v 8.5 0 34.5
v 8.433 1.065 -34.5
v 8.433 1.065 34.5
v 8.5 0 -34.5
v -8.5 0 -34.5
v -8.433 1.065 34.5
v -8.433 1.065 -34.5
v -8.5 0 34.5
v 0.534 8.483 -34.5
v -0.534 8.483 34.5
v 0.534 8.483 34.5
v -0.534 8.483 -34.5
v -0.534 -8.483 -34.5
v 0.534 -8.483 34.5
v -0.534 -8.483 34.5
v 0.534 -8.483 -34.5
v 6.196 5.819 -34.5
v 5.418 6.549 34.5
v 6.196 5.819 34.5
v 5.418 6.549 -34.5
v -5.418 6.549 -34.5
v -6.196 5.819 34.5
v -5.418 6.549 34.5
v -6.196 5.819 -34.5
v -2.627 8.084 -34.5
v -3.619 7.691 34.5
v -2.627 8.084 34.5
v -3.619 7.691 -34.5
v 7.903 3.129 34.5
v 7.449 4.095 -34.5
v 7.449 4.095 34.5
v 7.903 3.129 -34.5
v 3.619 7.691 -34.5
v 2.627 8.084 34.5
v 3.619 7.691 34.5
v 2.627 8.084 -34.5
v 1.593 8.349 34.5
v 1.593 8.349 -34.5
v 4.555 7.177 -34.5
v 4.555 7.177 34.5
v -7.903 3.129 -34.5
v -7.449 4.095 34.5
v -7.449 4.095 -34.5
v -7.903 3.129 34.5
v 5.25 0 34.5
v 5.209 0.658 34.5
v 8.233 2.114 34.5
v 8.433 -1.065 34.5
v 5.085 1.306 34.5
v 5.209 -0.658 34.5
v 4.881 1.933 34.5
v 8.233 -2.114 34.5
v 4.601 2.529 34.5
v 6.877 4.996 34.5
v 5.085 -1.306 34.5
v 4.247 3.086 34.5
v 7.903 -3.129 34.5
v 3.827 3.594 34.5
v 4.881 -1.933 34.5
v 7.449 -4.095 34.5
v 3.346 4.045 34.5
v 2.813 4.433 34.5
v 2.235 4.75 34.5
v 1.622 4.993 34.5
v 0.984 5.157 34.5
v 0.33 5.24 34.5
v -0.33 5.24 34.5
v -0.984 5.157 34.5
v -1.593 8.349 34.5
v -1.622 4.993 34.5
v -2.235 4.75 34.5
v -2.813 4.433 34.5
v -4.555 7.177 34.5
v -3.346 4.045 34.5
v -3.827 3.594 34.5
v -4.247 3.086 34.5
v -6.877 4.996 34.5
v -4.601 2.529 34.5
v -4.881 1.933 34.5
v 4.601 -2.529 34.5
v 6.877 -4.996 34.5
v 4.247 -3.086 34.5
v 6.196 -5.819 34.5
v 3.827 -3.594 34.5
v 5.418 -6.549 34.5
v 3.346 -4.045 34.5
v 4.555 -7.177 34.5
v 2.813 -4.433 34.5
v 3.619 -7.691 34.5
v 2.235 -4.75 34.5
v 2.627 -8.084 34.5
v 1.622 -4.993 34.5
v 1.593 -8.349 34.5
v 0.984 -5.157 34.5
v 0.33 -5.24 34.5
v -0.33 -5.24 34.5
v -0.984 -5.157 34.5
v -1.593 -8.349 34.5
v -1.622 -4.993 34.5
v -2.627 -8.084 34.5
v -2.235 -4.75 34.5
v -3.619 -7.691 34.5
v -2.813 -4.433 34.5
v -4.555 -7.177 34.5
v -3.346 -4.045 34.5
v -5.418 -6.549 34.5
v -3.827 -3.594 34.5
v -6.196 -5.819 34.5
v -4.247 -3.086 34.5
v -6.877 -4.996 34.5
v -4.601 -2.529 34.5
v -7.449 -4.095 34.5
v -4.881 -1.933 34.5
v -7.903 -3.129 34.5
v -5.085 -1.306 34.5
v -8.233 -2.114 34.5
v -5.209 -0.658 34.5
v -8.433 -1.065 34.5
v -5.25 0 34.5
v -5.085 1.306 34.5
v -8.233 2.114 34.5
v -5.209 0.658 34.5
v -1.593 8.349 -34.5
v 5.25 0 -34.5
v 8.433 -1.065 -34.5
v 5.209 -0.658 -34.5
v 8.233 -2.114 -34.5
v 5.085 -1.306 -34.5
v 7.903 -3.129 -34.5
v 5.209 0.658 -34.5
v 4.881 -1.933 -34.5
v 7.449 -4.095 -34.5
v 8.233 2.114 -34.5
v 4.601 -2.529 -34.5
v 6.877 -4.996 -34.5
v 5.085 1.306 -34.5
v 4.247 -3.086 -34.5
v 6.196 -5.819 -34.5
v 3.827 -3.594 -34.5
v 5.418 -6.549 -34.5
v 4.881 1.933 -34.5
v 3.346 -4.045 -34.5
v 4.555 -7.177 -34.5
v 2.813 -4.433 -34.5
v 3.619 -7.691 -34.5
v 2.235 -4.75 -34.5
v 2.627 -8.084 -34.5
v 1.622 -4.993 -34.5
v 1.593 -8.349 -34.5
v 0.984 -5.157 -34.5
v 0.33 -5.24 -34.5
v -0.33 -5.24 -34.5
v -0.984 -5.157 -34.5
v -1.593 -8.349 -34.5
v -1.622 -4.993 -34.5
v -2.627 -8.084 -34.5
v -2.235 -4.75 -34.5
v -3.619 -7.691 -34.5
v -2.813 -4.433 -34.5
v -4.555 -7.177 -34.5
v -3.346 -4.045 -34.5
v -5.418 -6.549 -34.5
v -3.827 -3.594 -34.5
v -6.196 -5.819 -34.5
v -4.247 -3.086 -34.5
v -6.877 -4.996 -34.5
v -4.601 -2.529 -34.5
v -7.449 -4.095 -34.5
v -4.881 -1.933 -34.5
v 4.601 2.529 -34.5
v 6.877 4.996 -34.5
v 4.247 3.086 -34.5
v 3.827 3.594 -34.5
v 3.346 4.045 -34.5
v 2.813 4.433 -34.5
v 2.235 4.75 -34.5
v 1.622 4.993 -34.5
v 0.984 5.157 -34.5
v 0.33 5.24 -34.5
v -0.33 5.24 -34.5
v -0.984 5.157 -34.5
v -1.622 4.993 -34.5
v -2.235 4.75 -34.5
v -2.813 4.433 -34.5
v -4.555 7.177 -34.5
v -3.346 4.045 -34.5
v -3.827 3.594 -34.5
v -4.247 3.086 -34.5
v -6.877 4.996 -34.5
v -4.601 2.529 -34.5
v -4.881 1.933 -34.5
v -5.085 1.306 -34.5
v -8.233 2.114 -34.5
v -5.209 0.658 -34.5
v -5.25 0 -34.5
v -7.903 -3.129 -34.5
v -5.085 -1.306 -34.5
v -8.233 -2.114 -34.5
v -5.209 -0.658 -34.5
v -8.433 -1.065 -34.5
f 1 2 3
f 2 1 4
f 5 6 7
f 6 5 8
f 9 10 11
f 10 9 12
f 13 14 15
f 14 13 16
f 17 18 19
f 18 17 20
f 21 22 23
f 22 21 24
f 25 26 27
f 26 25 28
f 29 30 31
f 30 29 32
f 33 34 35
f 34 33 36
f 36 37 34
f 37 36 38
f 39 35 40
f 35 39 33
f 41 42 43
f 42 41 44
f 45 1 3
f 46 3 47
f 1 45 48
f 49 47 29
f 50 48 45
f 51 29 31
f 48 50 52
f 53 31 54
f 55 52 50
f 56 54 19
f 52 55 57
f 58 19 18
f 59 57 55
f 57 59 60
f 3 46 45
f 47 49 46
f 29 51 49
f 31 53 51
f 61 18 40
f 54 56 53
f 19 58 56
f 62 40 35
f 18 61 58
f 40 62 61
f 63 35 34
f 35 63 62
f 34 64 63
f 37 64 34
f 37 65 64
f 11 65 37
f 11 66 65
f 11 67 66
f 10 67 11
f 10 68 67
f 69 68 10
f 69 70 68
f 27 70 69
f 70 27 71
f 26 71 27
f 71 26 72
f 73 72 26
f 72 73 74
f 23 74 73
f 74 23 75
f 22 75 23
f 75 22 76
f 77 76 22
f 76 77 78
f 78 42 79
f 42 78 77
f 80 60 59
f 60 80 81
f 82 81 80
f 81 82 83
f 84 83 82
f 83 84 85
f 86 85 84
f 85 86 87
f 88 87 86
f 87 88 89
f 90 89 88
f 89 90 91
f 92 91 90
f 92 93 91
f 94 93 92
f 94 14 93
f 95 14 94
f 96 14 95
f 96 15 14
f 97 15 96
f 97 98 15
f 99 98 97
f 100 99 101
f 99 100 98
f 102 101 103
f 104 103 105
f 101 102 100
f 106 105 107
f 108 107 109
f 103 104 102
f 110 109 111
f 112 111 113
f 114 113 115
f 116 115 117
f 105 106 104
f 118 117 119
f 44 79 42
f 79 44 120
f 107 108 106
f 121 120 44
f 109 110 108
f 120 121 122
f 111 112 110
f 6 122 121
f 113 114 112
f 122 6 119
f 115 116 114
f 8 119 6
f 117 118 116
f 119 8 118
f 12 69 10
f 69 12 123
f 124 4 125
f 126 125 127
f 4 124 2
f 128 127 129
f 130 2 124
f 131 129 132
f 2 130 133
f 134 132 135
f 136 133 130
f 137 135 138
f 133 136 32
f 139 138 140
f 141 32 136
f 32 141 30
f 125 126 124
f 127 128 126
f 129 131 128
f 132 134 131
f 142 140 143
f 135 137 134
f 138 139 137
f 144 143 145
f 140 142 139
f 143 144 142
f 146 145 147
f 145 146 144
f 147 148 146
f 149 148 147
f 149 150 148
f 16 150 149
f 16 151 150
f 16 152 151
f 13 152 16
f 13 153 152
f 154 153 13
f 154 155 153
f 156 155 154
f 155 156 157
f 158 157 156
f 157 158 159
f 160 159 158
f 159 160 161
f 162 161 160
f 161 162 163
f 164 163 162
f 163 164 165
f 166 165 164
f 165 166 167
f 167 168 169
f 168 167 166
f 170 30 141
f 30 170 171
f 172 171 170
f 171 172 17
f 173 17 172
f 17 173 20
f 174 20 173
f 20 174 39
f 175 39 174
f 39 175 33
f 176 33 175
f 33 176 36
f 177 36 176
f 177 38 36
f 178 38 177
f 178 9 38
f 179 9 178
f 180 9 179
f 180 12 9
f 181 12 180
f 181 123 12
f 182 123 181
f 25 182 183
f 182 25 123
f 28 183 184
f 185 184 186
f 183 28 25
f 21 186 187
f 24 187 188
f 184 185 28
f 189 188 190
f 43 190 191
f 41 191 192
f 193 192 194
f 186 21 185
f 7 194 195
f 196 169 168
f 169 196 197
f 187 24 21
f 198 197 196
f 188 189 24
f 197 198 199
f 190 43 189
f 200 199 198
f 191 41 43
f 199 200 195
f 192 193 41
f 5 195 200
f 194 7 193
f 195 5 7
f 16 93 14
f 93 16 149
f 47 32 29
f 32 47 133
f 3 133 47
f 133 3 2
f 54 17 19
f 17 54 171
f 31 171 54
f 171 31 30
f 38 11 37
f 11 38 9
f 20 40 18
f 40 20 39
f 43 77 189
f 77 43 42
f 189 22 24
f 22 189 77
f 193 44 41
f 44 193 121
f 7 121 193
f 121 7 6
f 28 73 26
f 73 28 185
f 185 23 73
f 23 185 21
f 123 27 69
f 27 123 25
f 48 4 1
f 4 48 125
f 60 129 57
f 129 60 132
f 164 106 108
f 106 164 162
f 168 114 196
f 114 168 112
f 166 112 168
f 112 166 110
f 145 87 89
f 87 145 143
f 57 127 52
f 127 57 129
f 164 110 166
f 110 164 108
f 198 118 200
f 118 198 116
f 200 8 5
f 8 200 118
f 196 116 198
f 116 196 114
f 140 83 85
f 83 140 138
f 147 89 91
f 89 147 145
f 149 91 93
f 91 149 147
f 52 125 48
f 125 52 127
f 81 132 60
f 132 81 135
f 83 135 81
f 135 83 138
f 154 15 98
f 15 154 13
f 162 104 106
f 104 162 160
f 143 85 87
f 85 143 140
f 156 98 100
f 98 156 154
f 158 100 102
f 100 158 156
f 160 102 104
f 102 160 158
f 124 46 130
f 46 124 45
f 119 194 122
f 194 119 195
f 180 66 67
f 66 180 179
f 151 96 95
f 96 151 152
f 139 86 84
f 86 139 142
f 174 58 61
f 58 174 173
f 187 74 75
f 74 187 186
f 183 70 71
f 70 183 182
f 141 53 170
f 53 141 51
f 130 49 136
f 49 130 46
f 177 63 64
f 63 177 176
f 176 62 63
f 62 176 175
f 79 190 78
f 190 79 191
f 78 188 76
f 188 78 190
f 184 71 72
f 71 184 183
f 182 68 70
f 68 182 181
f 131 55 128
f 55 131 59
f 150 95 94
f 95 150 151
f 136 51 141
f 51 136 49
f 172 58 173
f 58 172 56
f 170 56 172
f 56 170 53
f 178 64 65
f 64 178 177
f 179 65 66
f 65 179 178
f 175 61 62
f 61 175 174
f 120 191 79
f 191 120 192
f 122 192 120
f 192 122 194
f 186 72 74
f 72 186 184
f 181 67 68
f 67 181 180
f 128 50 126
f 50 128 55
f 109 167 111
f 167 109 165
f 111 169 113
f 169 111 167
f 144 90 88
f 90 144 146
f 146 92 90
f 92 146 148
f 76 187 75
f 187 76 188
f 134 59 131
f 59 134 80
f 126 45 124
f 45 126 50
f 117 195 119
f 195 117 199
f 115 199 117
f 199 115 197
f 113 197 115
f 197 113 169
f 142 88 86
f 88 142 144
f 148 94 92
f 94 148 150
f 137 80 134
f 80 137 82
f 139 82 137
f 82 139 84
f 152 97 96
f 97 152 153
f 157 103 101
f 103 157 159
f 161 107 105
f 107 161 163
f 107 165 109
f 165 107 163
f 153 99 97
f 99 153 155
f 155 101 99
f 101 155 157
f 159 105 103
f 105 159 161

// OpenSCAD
$fn = 50;


difference() {
	union() {
		translate(v = [0, 0, -34.5000000000]) {
			cylinder(h = 69, r = 8.5000000000);
		}
	}
	union() {
		translate(v = [0, 0, -100.0000000000]) {
			cylinder(h = 200, r = 5.2500000000);
		}
	}
}
